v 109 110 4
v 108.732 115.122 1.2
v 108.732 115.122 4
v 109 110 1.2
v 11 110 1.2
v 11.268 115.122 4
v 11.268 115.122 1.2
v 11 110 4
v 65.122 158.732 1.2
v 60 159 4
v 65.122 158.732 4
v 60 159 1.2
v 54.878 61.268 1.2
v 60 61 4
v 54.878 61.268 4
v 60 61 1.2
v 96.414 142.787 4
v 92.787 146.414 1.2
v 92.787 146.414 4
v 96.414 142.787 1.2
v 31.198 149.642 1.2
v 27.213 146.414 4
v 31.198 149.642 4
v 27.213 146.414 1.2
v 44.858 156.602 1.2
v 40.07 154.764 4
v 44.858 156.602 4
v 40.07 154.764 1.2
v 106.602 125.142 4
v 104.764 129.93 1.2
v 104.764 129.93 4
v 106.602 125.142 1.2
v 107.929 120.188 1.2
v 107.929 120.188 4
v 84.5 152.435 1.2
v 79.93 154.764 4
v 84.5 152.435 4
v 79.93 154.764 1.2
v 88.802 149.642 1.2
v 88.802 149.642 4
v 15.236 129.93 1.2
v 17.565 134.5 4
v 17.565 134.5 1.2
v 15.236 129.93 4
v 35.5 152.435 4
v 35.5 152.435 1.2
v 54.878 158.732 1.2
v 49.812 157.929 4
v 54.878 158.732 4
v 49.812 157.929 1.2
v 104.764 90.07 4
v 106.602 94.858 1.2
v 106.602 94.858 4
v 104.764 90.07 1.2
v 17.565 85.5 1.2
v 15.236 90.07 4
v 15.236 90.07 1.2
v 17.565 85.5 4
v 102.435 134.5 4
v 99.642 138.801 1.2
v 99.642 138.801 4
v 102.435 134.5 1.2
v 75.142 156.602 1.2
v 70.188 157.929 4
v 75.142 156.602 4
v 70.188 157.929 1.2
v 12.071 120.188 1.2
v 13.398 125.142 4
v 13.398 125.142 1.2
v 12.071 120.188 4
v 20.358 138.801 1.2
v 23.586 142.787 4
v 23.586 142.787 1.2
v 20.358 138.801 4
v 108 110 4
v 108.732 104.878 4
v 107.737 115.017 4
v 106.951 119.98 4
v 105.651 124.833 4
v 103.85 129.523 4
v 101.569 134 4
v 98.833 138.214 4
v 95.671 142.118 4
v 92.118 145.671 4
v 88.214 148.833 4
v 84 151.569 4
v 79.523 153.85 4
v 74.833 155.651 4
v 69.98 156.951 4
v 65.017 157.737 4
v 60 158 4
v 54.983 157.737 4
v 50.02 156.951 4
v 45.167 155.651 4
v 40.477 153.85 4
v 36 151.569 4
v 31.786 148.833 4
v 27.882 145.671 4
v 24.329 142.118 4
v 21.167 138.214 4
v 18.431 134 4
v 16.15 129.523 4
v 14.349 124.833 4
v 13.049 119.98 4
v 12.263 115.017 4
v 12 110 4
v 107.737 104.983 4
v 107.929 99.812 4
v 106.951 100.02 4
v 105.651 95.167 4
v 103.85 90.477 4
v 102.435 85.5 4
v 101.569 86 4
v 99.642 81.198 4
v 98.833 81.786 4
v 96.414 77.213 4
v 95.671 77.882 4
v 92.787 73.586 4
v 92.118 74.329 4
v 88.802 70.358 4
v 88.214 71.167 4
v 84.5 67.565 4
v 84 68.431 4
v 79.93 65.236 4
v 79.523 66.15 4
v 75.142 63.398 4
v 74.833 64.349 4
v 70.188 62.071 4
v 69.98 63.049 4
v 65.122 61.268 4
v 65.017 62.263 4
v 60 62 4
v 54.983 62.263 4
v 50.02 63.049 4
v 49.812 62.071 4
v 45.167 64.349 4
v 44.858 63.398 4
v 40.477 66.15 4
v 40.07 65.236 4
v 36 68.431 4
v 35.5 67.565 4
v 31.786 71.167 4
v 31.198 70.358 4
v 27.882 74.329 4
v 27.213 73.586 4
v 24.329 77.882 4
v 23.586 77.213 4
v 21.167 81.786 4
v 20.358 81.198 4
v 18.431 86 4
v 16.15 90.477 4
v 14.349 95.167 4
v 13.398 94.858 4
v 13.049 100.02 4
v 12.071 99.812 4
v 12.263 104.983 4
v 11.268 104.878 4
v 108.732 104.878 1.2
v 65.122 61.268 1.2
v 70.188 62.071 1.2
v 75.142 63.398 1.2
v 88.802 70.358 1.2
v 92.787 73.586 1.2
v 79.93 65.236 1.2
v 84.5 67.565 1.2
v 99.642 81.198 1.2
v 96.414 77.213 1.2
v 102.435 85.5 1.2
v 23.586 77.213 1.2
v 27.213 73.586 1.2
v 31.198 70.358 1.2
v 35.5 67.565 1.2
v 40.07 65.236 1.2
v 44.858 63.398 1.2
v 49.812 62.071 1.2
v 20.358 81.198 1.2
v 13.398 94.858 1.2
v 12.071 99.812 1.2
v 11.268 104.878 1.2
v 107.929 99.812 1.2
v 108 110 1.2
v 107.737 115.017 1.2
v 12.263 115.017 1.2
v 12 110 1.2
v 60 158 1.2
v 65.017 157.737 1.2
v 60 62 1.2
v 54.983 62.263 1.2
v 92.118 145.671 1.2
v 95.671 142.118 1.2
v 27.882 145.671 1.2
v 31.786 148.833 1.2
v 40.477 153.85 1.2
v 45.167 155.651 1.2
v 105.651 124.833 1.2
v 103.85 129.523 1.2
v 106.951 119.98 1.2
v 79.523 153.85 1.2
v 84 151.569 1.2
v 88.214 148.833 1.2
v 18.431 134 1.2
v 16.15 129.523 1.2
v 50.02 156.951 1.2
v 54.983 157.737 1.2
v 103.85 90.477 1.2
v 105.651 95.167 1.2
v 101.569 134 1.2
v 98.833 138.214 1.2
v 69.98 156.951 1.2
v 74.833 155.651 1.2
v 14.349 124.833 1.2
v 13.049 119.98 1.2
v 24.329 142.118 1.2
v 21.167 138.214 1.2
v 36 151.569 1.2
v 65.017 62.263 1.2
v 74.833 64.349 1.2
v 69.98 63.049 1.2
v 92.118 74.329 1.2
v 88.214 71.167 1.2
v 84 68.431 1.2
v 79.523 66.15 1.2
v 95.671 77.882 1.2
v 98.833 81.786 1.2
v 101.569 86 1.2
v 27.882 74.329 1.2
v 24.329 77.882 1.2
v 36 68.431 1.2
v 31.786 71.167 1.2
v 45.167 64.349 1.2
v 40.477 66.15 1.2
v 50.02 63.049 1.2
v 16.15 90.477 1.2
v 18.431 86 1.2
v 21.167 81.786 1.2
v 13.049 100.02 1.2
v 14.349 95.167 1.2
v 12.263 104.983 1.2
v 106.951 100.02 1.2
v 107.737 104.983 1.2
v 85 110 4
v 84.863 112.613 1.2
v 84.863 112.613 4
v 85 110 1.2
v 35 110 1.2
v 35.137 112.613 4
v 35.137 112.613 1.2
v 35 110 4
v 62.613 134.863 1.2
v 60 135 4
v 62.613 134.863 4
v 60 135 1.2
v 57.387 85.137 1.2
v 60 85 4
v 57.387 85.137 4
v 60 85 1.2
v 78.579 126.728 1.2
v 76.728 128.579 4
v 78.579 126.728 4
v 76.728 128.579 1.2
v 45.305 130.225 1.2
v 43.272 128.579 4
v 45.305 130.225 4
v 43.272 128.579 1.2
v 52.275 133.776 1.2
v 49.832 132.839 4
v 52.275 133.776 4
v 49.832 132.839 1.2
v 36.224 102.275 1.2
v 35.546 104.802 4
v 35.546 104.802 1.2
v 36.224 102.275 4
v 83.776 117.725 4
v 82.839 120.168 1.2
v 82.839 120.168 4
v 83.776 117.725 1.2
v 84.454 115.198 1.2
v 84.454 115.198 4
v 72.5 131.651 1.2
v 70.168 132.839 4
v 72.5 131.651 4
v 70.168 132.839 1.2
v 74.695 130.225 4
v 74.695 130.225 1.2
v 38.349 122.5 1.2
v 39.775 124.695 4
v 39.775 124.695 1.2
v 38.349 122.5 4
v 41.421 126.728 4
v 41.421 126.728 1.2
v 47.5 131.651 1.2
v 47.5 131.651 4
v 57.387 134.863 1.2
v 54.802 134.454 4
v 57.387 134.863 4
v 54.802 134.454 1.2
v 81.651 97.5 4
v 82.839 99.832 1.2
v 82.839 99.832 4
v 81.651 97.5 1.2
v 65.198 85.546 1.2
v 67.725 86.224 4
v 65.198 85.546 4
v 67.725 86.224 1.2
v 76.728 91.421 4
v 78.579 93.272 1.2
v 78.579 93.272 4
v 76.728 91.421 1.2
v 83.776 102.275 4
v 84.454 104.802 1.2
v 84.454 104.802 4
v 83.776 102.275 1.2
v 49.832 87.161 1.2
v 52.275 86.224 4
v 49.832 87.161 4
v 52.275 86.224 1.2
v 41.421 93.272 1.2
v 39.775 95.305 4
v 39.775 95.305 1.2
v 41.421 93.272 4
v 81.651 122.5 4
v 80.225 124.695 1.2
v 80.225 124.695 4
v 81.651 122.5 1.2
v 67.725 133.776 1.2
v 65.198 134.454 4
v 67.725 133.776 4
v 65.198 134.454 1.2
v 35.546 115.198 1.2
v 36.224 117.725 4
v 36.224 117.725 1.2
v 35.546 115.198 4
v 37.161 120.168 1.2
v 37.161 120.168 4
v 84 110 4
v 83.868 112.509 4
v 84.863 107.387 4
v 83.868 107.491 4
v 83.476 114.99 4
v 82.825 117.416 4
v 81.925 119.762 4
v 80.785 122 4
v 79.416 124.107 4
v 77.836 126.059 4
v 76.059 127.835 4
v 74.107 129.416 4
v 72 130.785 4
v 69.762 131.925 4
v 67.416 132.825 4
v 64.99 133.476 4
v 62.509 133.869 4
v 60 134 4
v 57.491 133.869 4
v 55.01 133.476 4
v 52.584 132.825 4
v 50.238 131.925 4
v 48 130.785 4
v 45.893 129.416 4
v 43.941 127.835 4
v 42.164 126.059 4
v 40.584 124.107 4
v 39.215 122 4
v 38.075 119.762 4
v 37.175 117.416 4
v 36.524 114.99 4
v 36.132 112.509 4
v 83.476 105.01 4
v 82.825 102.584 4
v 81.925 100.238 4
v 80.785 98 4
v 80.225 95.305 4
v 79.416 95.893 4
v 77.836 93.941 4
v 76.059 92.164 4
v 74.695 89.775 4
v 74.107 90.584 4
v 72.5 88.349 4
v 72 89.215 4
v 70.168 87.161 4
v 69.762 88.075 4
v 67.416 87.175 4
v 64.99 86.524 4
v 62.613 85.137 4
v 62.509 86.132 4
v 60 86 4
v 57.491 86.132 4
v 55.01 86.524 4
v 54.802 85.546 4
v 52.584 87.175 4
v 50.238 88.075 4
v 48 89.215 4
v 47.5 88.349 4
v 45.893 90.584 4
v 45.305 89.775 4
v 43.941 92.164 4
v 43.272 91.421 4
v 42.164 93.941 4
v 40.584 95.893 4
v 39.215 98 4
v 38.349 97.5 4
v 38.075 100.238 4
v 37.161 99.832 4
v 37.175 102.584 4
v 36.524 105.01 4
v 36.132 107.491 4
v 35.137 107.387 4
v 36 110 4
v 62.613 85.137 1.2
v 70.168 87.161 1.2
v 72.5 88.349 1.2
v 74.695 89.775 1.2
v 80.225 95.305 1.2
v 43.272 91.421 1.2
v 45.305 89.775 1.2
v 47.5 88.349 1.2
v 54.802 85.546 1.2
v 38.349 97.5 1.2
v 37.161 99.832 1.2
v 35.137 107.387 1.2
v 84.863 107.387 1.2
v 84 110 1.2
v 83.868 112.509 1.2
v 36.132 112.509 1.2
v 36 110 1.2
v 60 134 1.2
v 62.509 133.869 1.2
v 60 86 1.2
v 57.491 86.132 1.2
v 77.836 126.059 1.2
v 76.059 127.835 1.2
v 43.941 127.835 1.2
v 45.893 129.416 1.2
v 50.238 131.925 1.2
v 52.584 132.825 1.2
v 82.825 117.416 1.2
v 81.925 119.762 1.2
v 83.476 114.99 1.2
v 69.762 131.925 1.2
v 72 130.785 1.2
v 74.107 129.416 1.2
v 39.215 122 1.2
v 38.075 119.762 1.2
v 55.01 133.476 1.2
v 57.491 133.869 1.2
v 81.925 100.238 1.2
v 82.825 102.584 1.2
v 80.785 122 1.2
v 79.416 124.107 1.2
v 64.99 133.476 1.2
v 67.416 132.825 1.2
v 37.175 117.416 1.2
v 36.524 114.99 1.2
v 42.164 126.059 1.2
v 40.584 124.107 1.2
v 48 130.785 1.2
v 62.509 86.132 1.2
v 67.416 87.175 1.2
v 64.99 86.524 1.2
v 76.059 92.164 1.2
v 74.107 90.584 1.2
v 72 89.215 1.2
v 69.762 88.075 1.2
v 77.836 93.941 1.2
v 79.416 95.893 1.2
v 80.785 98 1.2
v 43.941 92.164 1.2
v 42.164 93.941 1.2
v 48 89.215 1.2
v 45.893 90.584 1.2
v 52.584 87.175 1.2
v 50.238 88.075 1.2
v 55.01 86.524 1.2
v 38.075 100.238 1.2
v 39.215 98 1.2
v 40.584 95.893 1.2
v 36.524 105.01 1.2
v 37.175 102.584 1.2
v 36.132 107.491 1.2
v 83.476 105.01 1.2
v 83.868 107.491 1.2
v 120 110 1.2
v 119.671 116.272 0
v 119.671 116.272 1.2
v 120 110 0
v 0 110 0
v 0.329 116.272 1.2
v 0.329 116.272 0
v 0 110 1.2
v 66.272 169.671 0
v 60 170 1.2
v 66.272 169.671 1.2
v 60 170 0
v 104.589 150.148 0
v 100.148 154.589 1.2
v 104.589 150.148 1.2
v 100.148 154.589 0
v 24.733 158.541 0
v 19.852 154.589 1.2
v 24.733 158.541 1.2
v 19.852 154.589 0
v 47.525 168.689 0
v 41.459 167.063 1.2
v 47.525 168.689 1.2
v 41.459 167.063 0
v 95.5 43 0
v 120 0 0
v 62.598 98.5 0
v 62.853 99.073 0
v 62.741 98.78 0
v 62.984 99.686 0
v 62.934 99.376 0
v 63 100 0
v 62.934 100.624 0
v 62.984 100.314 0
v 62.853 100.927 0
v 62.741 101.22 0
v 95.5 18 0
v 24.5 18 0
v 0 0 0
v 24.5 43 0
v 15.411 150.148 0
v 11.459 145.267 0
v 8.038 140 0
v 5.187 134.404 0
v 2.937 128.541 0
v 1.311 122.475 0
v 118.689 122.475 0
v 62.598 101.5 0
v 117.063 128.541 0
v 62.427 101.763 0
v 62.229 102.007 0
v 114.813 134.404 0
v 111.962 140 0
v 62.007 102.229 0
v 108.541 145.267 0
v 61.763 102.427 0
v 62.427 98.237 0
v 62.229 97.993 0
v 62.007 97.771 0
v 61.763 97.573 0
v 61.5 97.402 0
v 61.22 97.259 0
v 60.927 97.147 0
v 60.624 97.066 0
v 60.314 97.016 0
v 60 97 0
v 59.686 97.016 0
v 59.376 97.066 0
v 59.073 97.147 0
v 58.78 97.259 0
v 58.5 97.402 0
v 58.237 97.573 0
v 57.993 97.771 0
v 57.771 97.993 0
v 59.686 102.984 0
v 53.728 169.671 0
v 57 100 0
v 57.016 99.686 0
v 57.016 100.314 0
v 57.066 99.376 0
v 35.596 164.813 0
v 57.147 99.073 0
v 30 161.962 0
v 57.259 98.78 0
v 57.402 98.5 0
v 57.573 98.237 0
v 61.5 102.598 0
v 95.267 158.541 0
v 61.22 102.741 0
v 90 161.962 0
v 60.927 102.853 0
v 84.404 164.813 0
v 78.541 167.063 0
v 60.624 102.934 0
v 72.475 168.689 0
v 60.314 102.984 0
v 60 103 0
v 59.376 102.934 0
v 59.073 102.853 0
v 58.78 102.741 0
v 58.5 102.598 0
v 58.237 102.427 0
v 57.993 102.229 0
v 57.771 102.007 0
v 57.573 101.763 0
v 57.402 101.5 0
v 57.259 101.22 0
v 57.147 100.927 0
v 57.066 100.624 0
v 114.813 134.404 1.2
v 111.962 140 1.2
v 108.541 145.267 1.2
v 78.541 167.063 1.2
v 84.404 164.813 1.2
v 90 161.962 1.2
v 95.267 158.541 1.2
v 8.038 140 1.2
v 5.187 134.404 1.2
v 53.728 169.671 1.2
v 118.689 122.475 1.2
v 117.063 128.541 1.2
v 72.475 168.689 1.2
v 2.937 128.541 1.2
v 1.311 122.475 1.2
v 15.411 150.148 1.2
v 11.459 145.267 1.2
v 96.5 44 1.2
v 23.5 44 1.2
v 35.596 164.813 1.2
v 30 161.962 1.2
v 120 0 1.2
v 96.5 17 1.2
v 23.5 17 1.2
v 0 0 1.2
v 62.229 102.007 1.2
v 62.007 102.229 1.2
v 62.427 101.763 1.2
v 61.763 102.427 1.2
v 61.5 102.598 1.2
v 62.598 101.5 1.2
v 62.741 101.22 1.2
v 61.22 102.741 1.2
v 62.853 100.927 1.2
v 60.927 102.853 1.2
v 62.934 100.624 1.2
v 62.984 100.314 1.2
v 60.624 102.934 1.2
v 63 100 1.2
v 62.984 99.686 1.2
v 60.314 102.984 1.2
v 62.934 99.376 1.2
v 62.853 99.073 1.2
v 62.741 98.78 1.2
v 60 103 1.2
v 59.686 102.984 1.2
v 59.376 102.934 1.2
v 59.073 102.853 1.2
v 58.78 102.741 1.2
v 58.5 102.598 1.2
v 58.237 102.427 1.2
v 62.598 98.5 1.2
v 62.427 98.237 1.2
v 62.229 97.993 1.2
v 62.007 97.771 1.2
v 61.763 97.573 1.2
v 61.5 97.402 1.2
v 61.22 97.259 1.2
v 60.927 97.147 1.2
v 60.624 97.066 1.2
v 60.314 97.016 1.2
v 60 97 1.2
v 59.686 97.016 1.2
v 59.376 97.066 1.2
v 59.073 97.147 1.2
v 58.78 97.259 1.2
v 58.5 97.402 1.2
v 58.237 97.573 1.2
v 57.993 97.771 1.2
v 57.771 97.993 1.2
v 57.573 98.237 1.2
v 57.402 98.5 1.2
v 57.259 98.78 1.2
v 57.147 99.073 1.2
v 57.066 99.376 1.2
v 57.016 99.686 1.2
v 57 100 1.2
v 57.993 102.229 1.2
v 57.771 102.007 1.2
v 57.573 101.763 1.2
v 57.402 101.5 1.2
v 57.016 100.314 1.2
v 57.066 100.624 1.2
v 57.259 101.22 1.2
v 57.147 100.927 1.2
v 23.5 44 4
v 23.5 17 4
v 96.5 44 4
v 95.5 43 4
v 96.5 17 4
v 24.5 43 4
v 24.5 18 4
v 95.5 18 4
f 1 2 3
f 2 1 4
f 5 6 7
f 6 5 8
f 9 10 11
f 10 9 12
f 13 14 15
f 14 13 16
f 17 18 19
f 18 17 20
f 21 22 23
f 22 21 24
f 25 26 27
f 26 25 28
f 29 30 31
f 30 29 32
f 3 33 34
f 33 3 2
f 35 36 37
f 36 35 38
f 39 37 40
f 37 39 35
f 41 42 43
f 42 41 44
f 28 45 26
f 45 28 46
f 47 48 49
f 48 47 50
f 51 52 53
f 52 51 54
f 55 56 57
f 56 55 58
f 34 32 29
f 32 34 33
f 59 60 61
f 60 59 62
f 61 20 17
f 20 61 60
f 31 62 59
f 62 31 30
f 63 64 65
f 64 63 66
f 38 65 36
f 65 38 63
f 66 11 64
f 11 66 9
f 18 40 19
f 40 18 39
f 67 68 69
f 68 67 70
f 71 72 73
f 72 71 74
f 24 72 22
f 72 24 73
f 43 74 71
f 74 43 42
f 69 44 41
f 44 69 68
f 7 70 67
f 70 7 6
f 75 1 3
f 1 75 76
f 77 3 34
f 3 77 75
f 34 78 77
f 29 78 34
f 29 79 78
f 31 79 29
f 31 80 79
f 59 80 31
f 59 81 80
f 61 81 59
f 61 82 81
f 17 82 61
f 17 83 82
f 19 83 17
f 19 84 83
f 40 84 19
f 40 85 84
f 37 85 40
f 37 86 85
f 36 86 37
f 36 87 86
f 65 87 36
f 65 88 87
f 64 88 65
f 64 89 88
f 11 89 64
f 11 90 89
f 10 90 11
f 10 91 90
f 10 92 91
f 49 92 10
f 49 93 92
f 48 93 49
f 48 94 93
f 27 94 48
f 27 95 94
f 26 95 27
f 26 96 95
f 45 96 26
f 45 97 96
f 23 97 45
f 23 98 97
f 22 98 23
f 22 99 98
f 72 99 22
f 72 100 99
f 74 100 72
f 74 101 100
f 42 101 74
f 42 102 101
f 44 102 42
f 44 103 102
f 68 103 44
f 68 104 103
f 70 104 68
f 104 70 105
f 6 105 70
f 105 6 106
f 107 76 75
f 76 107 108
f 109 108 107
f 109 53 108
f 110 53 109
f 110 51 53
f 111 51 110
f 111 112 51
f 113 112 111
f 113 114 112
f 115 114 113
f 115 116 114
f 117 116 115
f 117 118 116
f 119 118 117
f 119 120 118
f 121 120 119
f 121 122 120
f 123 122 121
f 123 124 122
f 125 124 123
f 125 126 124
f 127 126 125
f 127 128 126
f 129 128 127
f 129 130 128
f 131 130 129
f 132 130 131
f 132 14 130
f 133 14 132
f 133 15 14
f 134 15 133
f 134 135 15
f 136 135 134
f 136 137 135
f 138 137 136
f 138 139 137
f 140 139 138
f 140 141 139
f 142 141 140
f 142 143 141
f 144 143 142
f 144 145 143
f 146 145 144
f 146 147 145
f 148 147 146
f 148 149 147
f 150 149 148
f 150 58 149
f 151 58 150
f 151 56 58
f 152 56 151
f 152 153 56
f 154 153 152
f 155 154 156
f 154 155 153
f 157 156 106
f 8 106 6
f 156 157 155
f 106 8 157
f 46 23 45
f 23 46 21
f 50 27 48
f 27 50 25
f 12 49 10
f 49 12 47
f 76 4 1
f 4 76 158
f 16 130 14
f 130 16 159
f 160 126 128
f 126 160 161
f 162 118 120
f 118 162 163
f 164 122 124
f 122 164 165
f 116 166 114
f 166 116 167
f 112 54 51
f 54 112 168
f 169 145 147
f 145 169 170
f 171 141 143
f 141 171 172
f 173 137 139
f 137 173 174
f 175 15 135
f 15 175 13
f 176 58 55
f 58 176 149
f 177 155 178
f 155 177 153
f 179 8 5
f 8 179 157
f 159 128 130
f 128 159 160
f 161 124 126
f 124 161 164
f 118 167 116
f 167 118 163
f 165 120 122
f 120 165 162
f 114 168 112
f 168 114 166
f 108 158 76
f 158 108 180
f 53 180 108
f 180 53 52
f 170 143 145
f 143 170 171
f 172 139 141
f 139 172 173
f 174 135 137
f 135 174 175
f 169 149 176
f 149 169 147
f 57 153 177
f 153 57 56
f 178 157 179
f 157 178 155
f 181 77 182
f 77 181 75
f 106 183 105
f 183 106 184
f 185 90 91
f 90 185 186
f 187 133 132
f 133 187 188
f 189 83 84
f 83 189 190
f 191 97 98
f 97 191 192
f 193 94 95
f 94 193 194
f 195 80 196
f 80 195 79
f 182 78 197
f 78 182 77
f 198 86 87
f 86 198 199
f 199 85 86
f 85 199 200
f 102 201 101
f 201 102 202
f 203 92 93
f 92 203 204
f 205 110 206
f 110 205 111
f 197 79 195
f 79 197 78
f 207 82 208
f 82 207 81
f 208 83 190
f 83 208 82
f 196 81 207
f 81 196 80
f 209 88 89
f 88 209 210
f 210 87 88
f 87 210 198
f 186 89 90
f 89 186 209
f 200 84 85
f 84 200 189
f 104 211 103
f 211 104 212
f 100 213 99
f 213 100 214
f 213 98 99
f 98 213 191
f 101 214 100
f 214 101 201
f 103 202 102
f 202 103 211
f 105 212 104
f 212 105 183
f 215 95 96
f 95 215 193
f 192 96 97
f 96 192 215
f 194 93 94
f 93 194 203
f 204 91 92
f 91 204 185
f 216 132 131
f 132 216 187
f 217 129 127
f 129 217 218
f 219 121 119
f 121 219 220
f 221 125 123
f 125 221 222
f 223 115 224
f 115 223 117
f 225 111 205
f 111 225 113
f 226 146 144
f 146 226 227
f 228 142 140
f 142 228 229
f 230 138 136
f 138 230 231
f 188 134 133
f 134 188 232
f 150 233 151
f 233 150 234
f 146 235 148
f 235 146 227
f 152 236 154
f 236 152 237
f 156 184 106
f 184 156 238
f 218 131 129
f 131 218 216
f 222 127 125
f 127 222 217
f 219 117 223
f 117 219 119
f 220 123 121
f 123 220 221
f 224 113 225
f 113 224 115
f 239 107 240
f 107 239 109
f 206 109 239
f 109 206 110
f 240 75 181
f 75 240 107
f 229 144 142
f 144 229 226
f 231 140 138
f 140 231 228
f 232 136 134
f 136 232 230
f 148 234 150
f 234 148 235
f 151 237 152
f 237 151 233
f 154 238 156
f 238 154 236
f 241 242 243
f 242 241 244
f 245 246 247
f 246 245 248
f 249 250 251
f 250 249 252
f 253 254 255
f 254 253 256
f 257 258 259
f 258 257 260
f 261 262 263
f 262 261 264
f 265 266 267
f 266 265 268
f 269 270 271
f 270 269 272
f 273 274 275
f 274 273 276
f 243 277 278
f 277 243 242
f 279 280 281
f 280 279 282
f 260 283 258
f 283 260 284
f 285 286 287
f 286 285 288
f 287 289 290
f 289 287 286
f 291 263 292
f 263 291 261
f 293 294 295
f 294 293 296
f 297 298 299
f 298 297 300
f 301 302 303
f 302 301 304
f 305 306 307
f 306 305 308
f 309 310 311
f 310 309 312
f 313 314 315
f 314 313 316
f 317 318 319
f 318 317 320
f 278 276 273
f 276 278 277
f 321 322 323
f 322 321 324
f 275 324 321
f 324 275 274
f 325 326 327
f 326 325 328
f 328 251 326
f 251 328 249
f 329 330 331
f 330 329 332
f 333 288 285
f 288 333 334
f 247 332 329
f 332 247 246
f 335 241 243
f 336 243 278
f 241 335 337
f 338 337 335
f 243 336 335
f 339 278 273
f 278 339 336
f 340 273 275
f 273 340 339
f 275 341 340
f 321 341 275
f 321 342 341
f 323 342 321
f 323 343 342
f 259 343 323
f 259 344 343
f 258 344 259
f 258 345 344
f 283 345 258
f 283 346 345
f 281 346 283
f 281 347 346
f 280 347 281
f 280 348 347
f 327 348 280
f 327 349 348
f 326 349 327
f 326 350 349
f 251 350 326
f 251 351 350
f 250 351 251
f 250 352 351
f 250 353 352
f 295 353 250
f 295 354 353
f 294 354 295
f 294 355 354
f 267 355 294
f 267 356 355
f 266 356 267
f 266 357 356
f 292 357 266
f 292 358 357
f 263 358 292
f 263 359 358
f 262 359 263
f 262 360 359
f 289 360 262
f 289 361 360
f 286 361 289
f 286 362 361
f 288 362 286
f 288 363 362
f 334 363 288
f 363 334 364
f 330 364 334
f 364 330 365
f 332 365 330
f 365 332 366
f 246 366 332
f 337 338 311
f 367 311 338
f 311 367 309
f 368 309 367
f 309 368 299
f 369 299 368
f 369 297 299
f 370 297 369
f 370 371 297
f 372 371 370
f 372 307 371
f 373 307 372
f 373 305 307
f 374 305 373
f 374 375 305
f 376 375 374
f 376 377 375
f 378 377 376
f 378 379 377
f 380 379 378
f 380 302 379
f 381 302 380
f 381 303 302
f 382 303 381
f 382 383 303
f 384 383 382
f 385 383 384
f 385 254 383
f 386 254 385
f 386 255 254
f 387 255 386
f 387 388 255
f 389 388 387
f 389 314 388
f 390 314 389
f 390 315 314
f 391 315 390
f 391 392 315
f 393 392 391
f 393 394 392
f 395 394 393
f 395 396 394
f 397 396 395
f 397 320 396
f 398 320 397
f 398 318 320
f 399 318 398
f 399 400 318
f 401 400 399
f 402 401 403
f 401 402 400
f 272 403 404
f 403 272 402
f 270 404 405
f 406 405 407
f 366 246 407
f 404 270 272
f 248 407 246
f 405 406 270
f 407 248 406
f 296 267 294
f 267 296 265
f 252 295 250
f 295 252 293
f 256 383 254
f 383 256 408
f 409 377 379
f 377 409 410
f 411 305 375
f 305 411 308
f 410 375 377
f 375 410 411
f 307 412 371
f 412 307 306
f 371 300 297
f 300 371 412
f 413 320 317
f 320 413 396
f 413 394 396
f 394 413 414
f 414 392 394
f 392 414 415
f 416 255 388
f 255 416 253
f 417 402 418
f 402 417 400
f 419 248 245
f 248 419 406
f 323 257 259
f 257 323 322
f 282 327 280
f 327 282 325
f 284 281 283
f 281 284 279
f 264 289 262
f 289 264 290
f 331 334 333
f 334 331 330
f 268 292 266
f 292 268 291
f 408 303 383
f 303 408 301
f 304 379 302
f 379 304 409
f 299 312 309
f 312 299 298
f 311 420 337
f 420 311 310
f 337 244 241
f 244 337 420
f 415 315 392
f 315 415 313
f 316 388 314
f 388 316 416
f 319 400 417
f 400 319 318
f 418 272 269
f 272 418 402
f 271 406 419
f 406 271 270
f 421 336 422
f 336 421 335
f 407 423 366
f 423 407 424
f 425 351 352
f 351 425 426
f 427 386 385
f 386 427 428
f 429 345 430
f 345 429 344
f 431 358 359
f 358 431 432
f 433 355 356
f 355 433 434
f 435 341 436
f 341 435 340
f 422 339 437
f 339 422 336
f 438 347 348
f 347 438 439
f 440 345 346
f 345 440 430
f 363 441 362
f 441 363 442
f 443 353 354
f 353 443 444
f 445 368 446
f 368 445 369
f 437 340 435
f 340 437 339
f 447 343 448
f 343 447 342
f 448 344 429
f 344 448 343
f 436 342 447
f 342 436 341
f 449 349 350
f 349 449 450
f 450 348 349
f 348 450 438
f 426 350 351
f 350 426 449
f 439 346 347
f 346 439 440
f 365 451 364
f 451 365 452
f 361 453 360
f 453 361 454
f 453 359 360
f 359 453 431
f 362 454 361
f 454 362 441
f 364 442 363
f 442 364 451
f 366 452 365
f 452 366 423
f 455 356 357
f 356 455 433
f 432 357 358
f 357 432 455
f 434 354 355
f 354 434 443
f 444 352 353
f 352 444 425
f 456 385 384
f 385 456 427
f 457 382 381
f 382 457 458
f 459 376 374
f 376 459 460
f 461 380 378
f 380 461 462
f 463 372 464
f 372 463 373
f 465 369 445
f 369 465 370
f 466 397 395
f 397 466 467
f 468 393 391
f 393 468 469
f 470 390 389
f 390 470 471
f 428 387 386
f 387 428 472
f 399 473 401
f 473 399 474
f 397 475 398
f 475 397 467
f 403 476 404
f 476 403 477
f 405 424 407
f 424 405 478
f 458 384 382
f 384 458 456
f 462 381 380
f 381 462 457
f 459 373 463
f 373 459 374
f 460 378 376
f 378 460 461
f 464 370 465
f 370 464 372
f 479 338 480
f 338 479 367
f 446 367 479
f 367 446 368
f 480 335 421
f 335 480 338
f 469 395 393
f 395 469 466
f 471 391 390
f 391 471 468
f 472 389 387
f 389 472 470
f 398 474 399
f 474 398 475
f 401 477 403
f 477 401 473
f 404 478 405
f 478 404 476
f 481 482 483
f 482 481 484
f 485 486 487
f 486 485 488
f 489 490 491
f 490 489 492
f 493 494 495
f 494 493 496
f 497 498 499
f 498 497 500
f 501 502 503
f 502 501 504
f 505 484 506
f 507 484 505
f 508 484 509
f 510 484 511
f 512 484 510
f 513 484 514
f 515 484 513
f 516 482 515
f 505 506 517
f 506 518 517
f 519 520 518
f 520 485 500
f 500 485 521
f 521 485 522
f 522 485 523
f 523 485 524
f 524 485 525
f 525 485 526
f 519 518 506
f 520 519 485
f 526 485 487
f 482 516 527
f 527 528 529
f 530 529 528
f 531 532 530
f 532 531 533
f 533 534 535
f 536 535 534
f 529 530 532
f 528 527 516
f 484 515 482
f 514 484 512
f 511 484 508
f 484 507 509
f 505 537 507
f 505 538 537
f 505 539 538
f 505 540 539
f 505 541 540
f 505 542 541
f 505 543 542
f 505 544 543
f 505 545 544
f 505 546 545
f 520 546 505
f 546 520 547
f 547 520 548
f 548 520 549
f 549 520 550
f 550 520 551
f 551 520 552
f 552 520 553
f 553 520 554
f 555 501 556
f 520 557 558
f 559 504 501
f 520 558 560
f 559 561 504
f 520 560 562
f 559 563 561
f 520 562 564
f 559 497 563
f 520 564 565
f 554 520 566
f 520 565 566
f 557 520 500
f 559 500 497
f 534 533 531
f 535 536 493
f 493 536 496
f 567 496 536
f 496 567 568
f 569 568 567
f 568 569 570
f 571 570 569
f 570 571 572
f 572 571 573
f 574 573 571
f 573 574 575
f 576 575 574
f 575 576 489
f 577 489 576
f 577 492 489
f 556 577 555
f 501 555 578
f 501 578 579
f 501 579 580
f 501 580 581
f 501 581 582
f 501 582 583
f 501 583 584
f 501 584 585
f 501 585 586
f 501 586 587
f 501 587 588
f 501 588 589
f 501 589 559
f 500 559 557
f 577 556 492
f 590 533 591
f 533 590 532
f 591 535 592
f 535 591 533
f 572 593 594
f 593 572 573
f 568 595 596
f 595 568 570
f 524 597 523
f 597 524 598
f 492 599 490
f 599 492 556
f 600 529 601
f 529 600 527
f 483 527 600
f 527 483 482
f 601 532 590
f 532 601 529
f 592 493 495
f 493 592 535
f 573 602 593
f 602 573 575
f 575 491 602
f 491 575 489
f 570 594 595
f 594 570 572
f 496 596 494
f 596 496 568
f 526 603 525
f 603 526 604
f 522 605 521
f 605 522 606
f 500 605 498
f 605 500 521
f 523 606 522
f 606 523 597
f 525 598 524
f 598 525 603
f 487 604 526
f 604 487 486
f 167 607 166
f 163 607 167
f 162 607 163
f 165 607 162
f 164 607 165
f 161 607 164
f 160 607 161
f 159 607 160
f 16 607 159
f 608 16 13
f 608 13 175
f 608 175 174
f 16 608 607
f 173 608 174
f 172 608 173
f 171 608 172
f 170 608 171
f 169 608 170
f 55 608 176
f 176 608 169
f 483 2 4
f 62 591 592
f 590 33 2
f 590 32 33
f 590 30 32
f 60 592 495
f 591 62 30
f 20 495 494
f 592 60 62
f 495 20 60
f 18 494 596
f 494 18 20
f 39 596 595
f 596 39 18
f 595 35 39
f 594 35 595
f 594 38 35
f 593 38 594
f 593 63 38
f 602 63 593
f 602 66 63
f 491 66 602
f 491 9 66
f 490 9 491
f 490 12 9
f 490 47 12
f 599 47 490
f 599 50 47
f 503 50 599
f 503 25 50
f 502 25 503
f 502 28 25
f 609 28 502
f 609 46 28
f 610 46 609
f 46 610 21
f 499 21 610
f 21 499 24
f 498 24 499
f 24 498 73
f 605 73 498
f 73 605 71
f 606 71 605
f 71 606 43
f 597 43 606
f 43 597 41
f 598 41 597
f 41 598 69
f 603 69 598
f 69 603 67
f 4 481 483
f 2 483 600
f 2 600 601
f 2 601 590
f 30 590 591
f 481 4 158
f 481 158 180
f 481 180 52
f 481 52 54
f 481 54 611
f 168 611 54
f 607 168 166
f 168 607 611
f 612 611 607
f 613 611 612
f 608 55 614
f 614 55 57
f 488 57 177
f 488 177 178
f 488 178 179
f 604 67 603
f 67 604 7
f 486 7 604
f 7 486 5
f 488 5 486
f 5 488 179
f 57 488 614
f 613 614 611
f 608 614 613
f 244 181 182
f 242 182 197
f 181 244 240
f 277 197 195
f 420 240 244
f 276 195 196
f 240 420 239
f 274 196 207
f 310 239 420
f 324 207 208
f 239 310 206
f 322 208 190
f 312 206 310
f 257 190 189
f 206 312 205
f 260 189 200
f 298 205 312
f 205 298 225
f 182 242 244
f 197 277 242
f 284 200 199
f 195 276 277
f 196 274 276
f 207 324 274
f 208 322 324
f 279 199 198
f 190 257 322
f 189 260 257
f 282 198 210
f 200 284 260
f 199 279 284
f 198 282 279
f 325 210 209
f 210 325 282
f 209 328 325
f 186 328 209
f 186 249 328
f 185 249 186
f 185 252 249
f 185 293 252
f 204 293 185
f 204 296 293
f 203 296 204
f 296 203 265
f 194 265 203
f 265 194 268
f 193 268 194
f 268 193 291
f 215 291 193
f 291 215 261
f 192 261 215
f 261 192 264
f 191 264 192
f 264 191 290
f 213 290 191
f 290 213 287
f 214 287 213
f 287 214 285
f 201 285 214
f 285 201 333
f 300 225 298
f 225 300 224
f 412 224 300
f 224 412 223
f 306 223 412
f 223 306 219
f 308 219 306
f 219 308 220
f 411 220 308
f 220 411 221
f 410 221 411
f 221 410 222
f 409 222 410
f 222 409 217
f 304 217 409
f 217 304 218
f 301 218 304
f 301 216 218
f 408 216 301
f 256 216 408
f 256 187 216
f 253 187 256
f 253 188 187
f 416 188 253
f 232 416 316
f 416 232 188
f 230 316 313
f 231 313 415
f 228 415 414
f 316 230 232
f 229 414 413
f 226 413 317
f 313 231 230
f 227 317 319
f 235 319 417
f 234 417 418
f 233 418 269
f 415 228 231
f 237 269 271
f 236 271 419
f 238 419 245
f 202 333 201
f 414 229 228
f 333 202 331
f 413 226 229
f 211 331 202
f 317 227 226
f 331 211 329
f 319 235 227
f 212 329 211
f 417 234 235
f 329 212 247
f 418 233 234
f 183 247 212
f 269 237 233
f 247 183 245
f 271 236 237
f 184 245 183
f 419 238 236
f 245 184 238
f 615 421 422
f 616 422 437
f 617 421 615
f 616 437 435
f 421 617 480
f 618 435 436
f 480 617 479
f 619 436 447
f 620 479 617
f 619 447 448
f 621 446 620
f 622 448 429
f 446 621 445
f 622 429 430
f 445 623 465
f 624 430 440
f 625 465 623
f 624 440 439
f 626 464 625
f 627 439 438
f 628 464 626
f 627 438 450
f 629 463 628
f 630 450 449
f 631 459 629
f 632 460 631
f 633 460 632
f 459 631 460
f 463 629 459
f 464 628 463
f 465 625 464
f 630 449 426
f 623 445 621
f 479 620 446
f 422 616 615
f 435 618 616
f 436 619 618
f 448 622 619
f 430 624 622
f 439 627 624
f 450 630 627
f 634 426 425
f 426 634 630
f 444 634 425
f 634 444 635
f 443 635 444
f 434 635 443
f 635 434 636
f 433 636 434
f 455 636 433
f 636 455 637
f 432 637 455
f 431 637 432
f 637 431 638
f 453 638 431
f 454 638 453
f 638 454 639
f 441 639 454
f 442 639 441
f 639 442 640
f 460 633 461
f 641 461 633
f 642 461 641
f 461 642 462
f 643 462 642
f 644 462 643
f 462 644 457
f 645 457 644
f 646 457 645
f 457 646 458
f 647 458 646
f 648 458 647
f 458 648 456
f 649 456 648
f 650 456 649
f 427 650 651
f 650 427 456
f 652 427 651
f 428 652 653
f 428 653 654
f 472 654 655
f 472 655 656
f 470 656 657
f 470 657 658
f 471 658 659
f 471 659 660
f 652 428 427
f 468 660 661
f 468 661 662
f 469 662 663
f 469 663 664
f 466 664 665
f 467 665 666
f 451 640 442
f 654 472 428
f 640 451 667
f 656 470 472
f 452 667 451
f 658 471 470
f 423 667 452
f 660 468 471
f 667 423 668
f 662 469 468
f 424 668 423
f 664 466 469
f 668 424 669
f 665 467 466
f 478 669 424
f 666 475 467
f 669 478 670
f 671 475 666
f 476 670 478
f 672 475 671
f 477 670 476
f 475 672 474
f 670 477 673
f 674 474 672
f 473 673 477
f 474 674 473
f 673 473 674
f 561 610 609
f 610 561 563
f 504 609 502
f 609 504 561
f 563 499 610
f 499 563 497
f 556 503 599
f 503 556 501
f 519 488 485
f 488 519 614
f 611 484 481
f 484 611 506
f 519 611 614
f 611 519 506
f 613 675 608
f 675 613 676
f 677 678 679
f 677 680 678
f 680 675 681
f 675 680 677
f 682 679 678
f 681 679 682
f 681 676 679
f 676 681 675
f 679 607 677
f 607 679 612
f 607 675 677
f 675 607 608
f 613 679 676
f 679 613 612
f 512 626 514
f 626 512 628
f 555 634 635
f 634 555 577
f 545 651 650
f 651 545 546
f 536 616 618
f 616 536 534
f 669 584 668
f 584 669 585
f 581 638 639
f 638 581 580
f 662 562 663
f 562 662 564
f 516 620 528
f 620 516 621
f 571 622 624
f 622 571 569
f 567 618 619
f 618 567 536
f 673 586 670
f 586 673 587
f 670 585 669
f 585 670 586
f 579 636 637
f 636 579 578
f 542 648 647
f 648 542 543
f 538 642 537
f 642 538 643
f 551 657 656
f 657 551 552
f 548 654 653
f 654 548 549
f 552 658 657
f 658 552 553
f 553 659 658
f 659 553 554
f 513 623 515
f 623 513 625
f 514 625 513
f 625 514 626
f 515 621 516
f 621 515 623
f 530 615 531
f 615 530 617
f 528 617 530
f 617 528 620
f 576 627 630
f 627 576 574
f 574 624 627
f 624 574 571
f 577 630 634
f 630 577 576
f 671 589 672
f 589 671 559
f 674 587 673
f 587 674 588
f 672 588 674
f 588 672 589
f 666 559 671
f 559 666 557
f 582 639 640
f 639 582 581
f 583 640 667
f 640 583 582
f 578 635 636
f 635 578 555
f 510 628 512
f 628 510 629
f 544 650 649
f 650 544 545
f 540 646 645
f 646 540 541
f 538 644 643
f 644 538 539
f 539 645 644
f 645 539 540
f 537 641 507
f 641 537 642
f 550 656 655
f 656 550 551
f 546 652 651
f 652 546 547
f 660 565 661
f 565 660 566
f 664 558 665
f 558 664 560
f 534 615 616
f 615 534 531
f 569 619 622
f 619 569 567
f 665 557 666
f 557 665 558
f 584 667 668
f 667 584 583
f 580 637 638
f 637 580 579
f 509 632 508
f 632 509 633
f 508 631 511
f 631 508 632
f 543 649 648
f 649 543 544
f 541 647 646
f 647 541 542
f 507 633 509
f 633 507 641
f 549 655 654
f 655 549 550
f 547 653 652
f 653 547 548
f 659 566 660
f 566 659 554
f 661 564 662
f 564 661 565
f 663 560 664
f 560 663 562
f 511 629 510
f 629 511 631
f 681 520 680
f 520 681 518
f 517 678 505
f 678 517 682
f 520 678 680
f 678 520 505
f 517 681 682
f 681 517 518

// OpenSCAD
$fn=60;

module backbox()
{
    difference()
    {
        union()
        {
            translate([60,110,0]) 
            {
                cylinder(r=60,h=1.2);
                translate([0,0,1]) difference()
                {
                    cylinder(r=98/2,h=3);
                    cylinder(r=(98-2)/2,h=4);
                }
                translate([0,0,1]) difference()
                {
                    cylinder(r=50/2,h=3);
                    cylinder(r=(50-2)/2,h=4);
                }
            }
            cube([120,110,1.2]);
            translate([(120-73)/2,17,0]) cube([73,27,4]);
            
        }
        union()
        {
            translate([60,100,-1]) cylinder(r=3,h=3);
            translate([(120-71)/2,18,-1]) cube([71,25,6]);
        }
    }
}


backbox();
